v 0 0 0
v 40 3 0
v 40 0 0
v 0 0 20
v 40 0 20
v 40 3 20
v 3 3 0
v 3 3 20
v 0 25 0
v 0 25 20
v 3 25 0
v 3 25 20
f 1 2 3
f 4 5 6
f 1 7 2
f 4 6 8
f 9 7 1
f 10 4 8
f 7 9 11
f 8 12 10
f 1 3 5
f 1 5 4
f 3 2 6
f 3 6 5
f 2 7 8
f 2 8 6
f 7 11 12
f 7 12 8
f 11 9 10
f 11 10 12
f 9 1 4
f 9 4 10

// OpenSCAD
// SPDX-License-Identifier: CERN-OHL-P-2.0
// McGruber generic untested angle support; units mm; no measured hardware fit.
base_length = 40; upright_height = 25; thickness = 3; width = 20;
assert(base_length > thickness && upright_height > thickness && thickness > 0);
linear_extrude(height = width)
    polygon(points = [[0,0],[base_length,0],[base_length,thickness],[thickness,thickness],[thickness,upright_height],[0,upright_height]]);
